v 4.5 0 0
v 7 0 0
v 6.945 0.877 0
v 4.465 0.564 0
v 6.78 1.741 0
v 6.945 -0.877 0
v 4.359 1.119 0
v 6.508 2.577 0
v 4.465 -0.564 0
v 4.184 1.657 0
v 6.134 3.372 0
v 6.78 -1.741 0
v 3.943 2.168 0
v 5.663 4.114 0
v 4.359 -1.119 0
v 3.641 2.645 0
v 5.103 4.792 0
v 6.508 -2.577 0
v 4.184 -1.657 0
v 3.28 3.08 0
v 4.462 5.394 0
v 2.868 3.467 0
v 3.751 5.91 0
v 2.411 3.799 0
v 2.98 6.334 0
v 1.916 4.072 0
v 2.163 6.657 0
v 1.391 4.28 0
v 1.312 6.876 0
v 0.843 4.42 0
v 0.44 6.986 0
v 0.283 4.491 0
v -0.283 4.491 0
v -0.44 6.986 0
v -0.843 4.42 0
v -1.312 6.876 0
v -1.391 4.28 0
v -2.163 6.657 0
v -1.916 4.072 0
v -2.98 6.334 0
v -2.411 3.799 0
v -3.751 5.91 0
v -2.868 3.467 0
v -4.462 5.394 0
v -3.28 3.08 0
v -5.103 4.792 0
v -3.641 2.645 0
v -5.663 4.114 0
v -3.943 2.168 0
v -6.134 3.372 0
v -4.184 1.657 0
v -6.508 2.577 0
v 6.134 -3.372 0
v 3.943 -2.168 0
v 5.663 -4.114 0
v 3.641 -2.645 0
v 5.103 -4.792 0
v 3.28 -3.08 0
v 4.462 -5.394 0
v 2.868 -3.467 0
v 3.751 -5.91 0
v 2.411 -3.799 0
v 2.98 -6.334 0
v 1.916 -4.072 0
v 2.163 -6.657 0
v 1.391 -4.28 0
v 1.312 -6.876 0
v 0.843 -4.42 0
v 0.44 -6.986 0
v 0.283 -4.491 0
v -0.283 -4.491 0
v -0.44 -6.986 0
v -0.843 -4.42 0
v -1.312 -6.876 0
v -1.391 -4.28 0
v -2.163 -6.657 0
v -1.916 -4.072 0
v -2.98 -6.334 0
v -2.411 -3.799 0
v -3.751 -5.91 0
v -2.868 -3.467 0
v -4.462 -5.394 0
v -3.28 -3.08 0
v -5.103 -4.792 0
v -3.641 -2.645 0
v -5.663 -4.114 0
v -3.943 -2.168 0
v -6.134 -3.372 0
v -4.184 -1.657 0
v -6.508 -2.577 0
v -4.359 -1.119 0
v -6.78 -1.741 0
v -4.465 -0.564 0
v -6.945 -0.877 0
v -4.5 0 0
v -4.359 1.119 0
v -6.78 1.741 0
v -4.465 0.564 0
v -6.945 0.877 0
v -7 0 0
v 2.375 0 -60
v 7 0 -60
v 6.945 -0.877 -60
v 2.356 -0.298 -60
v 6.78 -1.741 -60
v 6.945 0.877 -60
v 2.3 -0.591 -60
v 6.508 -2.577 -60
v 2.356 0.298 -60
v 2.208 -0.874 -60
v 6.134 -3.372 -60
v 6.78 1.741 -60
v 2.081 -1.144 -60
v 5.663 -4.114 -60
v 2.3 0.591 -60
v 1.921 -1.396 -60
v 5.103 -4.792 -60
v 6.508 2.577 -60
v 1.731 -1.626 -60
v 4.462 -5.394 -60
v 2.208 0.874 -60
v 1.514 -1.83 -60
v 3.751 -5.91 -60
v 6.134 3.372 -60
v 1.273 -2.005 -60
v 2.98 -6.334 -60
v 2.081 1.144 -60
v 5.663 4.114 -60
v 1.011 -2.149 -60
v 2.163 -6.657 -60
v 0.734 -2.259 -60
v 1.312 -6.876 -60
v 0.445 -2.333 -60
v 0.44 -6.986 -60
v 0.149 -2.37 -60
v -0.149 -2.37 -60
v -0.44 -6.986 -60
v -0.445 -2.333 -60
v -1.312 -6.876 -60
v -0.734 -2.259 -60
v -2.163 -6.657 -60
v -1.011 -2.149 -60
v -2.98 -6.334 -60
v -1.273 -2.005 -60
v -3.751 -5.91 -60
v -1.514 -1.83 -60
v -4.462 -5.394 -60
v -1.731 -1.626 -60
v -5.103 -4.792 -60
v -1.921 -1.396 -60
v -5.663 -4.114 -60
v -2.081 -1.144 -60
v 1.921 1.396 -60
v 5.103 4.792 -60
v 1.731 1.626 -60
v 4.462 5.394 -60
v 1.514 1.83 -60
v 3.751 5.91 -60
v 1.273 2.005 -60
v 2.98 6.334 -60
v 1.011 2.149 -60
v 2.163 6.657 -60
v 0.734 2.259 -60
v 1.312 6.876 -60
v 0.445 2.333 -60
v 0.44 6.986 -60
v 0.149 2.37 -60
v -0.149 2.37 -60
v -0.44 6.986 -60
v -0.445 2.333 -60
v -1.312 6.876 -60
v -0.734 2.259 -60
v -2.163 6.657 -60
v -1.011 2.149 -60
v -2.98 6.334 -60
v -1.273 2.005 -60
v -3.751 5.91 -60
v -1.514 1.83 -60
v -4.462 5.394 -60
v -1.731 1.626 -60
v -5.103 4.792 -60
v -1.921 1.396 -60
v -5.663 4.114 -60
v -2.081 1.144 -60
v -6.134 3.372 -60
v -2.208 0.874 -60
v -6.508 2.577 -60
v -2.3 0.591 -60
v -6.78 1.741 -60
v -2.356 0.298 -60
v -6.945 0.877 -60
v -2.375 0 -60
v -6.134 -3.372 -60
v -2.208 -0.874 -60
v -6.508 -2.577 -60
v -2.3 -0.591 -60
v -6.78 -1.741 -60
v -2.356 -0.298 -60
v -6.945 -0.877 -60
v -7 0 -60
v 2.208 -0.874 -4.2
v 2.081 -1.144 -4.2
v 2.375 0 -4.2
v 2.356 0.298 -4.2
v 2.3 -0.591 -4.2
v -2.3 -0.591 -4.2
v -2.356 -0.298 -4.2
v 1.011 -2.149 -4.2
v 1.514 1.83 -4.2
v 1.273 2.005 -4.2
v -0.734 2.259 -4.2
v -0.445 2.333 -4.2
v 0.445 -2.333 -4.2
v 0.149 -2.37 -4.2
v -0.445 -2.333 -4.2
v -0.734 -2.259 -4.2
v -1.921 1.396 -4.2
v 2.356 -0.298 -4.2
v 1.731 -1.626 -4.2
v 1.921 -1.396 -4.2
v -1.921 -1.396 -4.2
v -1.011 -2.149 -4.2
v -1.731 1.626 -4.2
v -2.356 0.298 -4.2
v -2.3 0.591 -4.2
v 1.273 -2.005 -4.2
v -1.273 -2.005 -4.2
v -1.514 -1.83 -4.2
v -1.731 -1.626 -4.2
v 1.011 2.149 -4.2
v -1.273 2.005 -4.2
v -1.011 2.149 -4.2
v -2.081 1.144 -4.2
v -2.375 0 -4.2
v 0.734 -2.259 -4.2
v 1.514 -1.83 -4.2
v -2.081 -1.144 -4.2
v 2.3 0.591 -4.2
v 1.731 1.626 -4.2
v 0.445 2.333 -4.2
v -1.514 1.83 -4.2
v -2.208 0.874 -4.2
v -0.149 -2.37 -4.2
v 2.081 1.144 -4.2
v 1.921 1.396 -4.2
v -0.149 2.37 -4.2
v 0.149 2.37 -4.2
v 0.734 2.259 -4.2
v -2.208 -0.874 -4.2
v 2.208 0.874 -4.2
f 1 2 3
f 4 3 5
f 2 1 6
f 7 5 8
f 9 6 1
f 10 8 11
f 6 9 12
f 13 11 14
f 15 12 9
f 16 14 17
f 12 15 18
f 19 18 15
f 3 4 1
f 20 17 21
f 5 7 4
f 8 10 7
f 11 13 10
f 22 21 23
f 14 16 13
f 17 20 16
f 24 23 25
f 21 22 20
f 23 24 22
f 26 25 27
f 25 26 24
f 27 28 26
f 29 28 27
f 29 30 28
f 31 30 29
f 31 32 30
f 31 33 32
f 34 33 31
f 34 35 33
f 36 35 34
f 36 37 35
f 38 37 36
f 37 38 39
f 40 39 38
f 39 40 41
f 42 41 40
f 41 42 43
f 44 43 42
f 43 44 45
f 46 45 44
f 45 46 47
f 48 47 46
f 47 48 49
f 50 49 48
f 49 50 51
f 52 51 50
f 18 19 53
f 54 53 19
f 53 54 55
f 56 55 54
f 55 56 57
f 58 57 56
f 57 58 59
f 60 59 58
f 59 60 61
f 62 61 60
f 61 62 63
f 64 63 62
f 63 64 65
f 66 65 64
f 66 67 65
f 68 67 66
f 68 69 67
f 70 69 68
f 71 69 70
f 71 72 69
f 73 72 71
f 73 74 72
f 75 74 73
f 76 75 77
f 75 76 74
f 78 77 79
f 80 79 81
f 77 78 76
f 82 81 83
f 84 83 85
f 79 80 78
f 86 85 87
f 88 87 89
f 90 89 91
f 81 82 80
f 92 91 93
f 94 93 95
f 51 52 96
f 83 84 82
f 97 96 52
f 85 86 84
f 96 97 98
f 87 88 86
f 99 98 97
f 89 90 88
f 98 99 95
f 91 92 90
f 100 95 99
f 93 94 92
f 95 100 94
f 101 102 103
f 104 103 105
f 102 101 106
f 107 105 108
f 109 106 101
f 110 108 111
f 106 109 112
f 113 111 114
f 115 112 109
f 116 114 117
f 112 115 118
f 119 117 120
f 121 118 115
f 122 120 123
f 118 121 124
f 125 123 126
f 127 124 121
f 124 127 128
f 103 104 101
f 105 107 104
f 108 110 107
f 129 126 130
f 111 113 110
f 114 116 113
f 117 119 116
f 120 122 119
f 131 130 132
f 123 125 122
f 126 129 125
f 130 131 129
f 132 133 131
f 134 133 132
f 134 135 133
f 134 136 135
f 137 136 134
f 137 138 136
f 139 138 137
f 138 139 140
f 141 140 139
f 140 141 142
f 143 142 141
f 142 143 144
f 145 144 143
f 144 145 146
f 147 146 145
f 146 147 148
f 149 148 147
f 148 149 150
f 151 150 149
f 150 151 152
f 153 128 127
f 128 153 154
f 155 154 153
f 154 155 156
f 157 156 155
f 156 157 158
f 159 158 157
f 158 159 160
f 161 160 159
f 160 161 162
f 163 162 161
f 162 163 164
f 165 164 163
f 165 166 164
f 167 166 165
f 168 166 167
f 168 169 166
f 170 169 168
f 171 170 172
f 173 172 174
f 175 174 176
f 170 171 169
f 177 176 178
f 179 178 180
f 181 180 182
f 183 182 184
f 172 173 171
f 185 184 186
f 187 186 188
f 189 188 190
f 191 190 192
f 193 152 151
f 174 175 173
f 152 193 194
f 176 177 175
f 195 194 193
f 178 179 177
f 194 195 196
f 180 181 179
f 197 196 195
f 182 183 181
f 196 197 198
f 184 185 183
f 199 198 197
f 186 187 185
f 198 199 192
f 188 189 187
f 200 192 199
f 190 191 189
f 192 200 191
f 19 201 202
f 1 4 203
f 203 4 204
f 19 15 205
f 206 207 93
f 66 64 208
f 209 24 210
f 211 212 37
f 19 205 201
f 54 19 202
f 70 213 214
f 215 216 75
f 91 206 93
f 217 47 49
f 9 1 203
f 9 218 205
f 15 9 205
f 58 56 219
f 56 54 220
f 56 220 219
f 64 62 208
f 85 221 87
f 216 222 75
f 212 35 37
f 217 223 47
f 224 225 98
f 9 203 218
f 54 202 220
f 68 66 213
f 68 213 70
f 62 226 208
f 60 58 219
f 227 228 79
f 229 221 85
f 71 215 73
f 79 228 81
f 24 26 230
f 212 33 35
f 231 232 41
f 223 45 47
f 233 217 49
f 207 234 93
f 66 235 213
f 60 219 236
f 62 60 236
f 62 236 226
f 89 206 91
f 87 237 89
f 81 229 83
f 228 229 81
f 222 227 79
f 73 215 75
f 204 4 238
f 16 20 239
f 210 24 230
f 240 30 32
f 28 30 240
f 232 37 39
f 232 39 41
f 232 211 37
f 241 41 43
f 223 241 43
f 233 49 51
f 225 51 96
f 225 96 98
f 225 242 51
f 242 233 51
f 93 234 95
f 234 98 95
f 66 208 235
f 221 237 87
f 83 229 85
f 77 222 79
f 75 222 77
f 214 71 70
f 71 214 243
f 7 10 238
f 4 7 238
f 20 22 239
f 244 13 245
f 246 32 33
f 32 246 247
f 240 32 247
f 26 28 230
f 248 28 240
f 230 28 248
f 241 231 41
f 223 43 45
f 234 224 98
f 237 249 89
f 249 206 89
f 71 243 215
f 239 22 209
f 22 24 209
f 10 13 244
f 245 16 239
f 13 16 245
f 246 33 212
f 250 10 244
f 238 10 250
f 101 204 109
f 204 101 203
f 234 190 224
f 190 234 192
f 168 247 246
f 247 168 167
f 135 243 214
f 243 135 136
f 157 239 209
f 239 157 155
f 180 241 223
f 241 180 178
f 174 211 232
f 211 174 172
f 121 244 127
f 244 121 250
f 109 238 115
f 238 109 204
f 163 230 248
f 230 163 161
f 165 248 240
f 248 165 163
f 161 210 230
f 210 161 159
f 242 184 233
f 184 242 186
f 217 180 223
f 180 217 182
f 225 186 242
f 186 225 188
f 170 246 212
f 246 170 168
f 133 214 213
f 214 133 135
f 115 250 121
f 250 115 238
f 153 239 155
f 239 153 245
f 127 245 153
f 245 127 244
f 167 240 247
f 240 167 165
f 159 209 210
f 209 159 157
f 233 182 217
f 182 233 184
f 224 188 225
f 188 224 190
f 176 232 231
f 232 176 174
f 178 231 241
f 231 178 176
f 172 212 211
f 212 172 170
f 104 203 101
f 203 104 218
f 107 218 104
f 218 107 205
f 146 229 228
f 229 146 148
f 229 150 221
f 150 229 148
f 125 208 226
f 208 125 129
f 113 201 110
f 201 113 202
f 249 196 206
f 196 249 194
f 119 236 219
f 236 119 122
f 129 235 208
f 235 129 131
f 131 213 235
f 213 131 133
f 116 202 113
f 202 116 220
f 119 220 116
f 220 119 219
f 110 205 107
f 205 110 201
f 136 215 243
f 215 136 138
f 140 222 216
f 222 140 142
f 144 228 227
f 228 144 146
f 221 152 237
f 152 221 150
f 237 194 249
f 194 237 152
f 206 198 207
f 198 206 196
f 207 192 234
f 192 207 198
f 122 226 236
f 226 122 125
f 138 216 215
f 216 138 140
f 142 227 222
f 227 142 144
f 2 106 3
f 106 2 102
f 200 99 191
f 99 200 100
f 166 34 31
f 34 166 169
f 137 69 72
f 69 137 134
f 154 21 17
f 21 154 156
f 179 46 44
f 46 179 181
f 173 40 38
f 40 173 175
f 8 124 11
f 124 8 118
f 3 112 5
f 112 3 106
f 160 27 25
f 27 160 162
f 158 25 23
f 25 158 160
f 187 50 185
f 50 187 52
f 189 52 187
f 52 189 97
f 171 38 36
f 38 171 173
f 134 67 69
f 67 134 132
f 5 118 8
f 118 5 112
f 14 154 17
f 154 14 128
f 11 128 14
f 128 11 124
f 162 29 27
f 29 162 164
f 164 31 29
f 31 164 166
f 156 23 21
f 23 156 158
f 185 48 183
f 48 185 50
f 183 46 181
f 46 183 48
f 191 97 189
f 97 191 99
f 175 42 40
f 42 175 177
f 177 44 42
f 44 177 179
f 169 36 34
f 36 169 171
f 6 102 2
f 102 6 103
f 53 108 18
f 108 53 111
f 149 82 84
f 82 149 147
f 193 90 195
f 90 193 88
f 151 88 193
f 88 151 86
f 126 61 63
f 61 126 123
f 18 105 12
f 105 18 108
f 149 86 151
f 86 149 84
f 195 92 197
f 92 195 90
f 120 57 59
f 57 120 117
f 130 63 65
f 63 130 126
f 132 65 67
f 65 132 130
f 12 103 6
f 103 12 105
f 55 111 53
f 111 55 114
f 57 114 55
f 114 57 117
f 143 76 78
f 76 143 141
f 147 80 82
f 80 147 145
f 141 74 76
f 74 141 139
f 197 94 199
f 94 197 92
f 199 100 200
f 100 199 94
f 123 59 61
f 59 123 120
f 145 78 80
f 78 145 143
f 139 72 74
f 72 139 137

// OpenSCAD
$fn = 50;


difference() {
	union() {
		translate(v = [0, 0, -60.0000000000]) {
			cylinder(h = 60, r = 7.0000000000);
		}
	}
	union() {
		translate(v = [0, 0, 0]) {
			rotate(a = [0, 0, 0]) {
				difference() {
					union() {
						#translate(v = [0, 0, -60.0000000000]) {
							cylinder(h = 60, r = 2.2500000000);
						}
						#translate(v = [0, 0, -4.2000000000]) {
							cylinder(h = 4.2000000000, r1 = 2.3750000000, r2 = 4.5000000000);
						}
						#translate(v = [0, 0, -60.0000000000]) {
							cylinder(h = 60, r = 2.3750000000);
						}
						#translate(v = [0, 0, -60.0000000000]) {
							cylinder(h = 60, r = 2.2500000000);
						}
					}
					union();
				}
			}
		}
	}
}
